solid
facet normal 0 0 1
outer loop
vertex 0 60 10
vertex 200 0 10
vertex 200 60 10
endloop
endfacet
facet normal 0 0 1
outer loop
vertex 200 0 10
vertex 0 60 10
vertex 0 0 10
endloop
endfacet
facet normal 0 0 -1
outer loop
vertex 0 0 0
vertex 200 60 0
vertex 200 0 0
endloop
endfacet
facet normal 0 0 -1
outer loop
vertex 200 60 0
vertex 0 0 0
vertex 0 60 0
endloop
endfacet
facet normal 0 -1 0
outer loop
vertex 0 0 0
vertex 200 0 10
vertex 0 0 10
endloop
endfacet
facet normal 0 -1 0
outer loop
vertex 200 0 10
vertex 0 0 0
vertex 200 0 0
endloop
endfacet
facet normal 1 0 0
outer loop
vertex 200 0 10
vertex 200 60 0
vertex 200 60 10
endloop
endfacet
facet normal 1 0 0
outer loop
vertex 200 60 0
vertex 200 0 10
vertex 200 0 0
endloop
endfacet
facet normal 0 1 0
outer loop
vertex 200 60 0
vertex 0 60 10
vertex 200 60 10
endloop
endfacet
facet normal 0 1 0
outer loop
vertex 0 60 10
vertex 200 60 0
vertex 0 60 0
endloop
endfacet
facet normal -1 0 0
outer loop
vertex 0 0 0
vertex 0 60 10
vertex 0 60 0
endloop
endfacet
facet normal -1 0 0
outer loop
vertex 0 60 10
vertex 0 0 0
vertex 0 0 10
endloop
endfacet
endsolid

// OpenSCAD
// file: params.scad
// Global Parameters for Dimon brace

// The HSS is a HSS 127x127x13 G40.20

HSS_d = 127.0;
HSS_b = 127.0;
HSS_t = 12.7;
HSS_l = 250.0;    //length of HSS for model

// The tongue plate (welded into slot in HSS)

TP_t = 20.0;
// TP_w = 280.0;  // width of plate
TP_w = 250.0;
TP_l = 250.0;   // total length
TP_lw = 100.0;  // length of welded portion

// cover plate (welded on HSS)

CP_t = 10;
CP_w = 60;
CP_l = 200;
CP_setback = 10;
CP_lw = CP_l;

// welds

TP_D = 8;
CP_D = 6;

// Bolts

BOLT_d = 20;    // diameter
BOLT_hd = BOLT_d + 2;    // hole diameter
// BOLT_s = 75;             // longitudinal spacing (pitch)
// BOLT_g = 75;             // transverse spacing (gauge)
BOLT_s = 70;             // longitudinal spacing (pitch)
BOLT_g = 70;             // transverse spacing (gauge)
BOLT_NG = 3;             // number of gauge lines (across)
BOLT_NT = 2;             // number of transverse lines
// BOLT_e = 40;		 // end distance
BOLT_e = 35;		 // end distance

// Gusset plate

GP_w = TP_w;
GP_t = TP_t;
// GP_w2 = 110;
GP_w2 = 70;
GP_theta = 45;
GP_l1 = GP_w2 + GP_w*cos(GP_theta);   // dist out to furthest pt
GP_l = GP_l1*tan(GP_theta) + GP_w*sin(GP_theta);
// GP_gap = 10;		// gap to tongue plate
GP_gap = 5;		// gap to tongue plate

// Lap Plate

LP_t = 10;
LP_w = 230;
LP_l = 2*(BOLT_NT-1)*BOLT_s + 4*BOLT_e + GP_gap;


// misc.

$fn = 60;       // number of sides for poly approx to circles
// main file
include <params.scad>;

render() {
    cube([CP_l,CP_w,CP_t]);
}
